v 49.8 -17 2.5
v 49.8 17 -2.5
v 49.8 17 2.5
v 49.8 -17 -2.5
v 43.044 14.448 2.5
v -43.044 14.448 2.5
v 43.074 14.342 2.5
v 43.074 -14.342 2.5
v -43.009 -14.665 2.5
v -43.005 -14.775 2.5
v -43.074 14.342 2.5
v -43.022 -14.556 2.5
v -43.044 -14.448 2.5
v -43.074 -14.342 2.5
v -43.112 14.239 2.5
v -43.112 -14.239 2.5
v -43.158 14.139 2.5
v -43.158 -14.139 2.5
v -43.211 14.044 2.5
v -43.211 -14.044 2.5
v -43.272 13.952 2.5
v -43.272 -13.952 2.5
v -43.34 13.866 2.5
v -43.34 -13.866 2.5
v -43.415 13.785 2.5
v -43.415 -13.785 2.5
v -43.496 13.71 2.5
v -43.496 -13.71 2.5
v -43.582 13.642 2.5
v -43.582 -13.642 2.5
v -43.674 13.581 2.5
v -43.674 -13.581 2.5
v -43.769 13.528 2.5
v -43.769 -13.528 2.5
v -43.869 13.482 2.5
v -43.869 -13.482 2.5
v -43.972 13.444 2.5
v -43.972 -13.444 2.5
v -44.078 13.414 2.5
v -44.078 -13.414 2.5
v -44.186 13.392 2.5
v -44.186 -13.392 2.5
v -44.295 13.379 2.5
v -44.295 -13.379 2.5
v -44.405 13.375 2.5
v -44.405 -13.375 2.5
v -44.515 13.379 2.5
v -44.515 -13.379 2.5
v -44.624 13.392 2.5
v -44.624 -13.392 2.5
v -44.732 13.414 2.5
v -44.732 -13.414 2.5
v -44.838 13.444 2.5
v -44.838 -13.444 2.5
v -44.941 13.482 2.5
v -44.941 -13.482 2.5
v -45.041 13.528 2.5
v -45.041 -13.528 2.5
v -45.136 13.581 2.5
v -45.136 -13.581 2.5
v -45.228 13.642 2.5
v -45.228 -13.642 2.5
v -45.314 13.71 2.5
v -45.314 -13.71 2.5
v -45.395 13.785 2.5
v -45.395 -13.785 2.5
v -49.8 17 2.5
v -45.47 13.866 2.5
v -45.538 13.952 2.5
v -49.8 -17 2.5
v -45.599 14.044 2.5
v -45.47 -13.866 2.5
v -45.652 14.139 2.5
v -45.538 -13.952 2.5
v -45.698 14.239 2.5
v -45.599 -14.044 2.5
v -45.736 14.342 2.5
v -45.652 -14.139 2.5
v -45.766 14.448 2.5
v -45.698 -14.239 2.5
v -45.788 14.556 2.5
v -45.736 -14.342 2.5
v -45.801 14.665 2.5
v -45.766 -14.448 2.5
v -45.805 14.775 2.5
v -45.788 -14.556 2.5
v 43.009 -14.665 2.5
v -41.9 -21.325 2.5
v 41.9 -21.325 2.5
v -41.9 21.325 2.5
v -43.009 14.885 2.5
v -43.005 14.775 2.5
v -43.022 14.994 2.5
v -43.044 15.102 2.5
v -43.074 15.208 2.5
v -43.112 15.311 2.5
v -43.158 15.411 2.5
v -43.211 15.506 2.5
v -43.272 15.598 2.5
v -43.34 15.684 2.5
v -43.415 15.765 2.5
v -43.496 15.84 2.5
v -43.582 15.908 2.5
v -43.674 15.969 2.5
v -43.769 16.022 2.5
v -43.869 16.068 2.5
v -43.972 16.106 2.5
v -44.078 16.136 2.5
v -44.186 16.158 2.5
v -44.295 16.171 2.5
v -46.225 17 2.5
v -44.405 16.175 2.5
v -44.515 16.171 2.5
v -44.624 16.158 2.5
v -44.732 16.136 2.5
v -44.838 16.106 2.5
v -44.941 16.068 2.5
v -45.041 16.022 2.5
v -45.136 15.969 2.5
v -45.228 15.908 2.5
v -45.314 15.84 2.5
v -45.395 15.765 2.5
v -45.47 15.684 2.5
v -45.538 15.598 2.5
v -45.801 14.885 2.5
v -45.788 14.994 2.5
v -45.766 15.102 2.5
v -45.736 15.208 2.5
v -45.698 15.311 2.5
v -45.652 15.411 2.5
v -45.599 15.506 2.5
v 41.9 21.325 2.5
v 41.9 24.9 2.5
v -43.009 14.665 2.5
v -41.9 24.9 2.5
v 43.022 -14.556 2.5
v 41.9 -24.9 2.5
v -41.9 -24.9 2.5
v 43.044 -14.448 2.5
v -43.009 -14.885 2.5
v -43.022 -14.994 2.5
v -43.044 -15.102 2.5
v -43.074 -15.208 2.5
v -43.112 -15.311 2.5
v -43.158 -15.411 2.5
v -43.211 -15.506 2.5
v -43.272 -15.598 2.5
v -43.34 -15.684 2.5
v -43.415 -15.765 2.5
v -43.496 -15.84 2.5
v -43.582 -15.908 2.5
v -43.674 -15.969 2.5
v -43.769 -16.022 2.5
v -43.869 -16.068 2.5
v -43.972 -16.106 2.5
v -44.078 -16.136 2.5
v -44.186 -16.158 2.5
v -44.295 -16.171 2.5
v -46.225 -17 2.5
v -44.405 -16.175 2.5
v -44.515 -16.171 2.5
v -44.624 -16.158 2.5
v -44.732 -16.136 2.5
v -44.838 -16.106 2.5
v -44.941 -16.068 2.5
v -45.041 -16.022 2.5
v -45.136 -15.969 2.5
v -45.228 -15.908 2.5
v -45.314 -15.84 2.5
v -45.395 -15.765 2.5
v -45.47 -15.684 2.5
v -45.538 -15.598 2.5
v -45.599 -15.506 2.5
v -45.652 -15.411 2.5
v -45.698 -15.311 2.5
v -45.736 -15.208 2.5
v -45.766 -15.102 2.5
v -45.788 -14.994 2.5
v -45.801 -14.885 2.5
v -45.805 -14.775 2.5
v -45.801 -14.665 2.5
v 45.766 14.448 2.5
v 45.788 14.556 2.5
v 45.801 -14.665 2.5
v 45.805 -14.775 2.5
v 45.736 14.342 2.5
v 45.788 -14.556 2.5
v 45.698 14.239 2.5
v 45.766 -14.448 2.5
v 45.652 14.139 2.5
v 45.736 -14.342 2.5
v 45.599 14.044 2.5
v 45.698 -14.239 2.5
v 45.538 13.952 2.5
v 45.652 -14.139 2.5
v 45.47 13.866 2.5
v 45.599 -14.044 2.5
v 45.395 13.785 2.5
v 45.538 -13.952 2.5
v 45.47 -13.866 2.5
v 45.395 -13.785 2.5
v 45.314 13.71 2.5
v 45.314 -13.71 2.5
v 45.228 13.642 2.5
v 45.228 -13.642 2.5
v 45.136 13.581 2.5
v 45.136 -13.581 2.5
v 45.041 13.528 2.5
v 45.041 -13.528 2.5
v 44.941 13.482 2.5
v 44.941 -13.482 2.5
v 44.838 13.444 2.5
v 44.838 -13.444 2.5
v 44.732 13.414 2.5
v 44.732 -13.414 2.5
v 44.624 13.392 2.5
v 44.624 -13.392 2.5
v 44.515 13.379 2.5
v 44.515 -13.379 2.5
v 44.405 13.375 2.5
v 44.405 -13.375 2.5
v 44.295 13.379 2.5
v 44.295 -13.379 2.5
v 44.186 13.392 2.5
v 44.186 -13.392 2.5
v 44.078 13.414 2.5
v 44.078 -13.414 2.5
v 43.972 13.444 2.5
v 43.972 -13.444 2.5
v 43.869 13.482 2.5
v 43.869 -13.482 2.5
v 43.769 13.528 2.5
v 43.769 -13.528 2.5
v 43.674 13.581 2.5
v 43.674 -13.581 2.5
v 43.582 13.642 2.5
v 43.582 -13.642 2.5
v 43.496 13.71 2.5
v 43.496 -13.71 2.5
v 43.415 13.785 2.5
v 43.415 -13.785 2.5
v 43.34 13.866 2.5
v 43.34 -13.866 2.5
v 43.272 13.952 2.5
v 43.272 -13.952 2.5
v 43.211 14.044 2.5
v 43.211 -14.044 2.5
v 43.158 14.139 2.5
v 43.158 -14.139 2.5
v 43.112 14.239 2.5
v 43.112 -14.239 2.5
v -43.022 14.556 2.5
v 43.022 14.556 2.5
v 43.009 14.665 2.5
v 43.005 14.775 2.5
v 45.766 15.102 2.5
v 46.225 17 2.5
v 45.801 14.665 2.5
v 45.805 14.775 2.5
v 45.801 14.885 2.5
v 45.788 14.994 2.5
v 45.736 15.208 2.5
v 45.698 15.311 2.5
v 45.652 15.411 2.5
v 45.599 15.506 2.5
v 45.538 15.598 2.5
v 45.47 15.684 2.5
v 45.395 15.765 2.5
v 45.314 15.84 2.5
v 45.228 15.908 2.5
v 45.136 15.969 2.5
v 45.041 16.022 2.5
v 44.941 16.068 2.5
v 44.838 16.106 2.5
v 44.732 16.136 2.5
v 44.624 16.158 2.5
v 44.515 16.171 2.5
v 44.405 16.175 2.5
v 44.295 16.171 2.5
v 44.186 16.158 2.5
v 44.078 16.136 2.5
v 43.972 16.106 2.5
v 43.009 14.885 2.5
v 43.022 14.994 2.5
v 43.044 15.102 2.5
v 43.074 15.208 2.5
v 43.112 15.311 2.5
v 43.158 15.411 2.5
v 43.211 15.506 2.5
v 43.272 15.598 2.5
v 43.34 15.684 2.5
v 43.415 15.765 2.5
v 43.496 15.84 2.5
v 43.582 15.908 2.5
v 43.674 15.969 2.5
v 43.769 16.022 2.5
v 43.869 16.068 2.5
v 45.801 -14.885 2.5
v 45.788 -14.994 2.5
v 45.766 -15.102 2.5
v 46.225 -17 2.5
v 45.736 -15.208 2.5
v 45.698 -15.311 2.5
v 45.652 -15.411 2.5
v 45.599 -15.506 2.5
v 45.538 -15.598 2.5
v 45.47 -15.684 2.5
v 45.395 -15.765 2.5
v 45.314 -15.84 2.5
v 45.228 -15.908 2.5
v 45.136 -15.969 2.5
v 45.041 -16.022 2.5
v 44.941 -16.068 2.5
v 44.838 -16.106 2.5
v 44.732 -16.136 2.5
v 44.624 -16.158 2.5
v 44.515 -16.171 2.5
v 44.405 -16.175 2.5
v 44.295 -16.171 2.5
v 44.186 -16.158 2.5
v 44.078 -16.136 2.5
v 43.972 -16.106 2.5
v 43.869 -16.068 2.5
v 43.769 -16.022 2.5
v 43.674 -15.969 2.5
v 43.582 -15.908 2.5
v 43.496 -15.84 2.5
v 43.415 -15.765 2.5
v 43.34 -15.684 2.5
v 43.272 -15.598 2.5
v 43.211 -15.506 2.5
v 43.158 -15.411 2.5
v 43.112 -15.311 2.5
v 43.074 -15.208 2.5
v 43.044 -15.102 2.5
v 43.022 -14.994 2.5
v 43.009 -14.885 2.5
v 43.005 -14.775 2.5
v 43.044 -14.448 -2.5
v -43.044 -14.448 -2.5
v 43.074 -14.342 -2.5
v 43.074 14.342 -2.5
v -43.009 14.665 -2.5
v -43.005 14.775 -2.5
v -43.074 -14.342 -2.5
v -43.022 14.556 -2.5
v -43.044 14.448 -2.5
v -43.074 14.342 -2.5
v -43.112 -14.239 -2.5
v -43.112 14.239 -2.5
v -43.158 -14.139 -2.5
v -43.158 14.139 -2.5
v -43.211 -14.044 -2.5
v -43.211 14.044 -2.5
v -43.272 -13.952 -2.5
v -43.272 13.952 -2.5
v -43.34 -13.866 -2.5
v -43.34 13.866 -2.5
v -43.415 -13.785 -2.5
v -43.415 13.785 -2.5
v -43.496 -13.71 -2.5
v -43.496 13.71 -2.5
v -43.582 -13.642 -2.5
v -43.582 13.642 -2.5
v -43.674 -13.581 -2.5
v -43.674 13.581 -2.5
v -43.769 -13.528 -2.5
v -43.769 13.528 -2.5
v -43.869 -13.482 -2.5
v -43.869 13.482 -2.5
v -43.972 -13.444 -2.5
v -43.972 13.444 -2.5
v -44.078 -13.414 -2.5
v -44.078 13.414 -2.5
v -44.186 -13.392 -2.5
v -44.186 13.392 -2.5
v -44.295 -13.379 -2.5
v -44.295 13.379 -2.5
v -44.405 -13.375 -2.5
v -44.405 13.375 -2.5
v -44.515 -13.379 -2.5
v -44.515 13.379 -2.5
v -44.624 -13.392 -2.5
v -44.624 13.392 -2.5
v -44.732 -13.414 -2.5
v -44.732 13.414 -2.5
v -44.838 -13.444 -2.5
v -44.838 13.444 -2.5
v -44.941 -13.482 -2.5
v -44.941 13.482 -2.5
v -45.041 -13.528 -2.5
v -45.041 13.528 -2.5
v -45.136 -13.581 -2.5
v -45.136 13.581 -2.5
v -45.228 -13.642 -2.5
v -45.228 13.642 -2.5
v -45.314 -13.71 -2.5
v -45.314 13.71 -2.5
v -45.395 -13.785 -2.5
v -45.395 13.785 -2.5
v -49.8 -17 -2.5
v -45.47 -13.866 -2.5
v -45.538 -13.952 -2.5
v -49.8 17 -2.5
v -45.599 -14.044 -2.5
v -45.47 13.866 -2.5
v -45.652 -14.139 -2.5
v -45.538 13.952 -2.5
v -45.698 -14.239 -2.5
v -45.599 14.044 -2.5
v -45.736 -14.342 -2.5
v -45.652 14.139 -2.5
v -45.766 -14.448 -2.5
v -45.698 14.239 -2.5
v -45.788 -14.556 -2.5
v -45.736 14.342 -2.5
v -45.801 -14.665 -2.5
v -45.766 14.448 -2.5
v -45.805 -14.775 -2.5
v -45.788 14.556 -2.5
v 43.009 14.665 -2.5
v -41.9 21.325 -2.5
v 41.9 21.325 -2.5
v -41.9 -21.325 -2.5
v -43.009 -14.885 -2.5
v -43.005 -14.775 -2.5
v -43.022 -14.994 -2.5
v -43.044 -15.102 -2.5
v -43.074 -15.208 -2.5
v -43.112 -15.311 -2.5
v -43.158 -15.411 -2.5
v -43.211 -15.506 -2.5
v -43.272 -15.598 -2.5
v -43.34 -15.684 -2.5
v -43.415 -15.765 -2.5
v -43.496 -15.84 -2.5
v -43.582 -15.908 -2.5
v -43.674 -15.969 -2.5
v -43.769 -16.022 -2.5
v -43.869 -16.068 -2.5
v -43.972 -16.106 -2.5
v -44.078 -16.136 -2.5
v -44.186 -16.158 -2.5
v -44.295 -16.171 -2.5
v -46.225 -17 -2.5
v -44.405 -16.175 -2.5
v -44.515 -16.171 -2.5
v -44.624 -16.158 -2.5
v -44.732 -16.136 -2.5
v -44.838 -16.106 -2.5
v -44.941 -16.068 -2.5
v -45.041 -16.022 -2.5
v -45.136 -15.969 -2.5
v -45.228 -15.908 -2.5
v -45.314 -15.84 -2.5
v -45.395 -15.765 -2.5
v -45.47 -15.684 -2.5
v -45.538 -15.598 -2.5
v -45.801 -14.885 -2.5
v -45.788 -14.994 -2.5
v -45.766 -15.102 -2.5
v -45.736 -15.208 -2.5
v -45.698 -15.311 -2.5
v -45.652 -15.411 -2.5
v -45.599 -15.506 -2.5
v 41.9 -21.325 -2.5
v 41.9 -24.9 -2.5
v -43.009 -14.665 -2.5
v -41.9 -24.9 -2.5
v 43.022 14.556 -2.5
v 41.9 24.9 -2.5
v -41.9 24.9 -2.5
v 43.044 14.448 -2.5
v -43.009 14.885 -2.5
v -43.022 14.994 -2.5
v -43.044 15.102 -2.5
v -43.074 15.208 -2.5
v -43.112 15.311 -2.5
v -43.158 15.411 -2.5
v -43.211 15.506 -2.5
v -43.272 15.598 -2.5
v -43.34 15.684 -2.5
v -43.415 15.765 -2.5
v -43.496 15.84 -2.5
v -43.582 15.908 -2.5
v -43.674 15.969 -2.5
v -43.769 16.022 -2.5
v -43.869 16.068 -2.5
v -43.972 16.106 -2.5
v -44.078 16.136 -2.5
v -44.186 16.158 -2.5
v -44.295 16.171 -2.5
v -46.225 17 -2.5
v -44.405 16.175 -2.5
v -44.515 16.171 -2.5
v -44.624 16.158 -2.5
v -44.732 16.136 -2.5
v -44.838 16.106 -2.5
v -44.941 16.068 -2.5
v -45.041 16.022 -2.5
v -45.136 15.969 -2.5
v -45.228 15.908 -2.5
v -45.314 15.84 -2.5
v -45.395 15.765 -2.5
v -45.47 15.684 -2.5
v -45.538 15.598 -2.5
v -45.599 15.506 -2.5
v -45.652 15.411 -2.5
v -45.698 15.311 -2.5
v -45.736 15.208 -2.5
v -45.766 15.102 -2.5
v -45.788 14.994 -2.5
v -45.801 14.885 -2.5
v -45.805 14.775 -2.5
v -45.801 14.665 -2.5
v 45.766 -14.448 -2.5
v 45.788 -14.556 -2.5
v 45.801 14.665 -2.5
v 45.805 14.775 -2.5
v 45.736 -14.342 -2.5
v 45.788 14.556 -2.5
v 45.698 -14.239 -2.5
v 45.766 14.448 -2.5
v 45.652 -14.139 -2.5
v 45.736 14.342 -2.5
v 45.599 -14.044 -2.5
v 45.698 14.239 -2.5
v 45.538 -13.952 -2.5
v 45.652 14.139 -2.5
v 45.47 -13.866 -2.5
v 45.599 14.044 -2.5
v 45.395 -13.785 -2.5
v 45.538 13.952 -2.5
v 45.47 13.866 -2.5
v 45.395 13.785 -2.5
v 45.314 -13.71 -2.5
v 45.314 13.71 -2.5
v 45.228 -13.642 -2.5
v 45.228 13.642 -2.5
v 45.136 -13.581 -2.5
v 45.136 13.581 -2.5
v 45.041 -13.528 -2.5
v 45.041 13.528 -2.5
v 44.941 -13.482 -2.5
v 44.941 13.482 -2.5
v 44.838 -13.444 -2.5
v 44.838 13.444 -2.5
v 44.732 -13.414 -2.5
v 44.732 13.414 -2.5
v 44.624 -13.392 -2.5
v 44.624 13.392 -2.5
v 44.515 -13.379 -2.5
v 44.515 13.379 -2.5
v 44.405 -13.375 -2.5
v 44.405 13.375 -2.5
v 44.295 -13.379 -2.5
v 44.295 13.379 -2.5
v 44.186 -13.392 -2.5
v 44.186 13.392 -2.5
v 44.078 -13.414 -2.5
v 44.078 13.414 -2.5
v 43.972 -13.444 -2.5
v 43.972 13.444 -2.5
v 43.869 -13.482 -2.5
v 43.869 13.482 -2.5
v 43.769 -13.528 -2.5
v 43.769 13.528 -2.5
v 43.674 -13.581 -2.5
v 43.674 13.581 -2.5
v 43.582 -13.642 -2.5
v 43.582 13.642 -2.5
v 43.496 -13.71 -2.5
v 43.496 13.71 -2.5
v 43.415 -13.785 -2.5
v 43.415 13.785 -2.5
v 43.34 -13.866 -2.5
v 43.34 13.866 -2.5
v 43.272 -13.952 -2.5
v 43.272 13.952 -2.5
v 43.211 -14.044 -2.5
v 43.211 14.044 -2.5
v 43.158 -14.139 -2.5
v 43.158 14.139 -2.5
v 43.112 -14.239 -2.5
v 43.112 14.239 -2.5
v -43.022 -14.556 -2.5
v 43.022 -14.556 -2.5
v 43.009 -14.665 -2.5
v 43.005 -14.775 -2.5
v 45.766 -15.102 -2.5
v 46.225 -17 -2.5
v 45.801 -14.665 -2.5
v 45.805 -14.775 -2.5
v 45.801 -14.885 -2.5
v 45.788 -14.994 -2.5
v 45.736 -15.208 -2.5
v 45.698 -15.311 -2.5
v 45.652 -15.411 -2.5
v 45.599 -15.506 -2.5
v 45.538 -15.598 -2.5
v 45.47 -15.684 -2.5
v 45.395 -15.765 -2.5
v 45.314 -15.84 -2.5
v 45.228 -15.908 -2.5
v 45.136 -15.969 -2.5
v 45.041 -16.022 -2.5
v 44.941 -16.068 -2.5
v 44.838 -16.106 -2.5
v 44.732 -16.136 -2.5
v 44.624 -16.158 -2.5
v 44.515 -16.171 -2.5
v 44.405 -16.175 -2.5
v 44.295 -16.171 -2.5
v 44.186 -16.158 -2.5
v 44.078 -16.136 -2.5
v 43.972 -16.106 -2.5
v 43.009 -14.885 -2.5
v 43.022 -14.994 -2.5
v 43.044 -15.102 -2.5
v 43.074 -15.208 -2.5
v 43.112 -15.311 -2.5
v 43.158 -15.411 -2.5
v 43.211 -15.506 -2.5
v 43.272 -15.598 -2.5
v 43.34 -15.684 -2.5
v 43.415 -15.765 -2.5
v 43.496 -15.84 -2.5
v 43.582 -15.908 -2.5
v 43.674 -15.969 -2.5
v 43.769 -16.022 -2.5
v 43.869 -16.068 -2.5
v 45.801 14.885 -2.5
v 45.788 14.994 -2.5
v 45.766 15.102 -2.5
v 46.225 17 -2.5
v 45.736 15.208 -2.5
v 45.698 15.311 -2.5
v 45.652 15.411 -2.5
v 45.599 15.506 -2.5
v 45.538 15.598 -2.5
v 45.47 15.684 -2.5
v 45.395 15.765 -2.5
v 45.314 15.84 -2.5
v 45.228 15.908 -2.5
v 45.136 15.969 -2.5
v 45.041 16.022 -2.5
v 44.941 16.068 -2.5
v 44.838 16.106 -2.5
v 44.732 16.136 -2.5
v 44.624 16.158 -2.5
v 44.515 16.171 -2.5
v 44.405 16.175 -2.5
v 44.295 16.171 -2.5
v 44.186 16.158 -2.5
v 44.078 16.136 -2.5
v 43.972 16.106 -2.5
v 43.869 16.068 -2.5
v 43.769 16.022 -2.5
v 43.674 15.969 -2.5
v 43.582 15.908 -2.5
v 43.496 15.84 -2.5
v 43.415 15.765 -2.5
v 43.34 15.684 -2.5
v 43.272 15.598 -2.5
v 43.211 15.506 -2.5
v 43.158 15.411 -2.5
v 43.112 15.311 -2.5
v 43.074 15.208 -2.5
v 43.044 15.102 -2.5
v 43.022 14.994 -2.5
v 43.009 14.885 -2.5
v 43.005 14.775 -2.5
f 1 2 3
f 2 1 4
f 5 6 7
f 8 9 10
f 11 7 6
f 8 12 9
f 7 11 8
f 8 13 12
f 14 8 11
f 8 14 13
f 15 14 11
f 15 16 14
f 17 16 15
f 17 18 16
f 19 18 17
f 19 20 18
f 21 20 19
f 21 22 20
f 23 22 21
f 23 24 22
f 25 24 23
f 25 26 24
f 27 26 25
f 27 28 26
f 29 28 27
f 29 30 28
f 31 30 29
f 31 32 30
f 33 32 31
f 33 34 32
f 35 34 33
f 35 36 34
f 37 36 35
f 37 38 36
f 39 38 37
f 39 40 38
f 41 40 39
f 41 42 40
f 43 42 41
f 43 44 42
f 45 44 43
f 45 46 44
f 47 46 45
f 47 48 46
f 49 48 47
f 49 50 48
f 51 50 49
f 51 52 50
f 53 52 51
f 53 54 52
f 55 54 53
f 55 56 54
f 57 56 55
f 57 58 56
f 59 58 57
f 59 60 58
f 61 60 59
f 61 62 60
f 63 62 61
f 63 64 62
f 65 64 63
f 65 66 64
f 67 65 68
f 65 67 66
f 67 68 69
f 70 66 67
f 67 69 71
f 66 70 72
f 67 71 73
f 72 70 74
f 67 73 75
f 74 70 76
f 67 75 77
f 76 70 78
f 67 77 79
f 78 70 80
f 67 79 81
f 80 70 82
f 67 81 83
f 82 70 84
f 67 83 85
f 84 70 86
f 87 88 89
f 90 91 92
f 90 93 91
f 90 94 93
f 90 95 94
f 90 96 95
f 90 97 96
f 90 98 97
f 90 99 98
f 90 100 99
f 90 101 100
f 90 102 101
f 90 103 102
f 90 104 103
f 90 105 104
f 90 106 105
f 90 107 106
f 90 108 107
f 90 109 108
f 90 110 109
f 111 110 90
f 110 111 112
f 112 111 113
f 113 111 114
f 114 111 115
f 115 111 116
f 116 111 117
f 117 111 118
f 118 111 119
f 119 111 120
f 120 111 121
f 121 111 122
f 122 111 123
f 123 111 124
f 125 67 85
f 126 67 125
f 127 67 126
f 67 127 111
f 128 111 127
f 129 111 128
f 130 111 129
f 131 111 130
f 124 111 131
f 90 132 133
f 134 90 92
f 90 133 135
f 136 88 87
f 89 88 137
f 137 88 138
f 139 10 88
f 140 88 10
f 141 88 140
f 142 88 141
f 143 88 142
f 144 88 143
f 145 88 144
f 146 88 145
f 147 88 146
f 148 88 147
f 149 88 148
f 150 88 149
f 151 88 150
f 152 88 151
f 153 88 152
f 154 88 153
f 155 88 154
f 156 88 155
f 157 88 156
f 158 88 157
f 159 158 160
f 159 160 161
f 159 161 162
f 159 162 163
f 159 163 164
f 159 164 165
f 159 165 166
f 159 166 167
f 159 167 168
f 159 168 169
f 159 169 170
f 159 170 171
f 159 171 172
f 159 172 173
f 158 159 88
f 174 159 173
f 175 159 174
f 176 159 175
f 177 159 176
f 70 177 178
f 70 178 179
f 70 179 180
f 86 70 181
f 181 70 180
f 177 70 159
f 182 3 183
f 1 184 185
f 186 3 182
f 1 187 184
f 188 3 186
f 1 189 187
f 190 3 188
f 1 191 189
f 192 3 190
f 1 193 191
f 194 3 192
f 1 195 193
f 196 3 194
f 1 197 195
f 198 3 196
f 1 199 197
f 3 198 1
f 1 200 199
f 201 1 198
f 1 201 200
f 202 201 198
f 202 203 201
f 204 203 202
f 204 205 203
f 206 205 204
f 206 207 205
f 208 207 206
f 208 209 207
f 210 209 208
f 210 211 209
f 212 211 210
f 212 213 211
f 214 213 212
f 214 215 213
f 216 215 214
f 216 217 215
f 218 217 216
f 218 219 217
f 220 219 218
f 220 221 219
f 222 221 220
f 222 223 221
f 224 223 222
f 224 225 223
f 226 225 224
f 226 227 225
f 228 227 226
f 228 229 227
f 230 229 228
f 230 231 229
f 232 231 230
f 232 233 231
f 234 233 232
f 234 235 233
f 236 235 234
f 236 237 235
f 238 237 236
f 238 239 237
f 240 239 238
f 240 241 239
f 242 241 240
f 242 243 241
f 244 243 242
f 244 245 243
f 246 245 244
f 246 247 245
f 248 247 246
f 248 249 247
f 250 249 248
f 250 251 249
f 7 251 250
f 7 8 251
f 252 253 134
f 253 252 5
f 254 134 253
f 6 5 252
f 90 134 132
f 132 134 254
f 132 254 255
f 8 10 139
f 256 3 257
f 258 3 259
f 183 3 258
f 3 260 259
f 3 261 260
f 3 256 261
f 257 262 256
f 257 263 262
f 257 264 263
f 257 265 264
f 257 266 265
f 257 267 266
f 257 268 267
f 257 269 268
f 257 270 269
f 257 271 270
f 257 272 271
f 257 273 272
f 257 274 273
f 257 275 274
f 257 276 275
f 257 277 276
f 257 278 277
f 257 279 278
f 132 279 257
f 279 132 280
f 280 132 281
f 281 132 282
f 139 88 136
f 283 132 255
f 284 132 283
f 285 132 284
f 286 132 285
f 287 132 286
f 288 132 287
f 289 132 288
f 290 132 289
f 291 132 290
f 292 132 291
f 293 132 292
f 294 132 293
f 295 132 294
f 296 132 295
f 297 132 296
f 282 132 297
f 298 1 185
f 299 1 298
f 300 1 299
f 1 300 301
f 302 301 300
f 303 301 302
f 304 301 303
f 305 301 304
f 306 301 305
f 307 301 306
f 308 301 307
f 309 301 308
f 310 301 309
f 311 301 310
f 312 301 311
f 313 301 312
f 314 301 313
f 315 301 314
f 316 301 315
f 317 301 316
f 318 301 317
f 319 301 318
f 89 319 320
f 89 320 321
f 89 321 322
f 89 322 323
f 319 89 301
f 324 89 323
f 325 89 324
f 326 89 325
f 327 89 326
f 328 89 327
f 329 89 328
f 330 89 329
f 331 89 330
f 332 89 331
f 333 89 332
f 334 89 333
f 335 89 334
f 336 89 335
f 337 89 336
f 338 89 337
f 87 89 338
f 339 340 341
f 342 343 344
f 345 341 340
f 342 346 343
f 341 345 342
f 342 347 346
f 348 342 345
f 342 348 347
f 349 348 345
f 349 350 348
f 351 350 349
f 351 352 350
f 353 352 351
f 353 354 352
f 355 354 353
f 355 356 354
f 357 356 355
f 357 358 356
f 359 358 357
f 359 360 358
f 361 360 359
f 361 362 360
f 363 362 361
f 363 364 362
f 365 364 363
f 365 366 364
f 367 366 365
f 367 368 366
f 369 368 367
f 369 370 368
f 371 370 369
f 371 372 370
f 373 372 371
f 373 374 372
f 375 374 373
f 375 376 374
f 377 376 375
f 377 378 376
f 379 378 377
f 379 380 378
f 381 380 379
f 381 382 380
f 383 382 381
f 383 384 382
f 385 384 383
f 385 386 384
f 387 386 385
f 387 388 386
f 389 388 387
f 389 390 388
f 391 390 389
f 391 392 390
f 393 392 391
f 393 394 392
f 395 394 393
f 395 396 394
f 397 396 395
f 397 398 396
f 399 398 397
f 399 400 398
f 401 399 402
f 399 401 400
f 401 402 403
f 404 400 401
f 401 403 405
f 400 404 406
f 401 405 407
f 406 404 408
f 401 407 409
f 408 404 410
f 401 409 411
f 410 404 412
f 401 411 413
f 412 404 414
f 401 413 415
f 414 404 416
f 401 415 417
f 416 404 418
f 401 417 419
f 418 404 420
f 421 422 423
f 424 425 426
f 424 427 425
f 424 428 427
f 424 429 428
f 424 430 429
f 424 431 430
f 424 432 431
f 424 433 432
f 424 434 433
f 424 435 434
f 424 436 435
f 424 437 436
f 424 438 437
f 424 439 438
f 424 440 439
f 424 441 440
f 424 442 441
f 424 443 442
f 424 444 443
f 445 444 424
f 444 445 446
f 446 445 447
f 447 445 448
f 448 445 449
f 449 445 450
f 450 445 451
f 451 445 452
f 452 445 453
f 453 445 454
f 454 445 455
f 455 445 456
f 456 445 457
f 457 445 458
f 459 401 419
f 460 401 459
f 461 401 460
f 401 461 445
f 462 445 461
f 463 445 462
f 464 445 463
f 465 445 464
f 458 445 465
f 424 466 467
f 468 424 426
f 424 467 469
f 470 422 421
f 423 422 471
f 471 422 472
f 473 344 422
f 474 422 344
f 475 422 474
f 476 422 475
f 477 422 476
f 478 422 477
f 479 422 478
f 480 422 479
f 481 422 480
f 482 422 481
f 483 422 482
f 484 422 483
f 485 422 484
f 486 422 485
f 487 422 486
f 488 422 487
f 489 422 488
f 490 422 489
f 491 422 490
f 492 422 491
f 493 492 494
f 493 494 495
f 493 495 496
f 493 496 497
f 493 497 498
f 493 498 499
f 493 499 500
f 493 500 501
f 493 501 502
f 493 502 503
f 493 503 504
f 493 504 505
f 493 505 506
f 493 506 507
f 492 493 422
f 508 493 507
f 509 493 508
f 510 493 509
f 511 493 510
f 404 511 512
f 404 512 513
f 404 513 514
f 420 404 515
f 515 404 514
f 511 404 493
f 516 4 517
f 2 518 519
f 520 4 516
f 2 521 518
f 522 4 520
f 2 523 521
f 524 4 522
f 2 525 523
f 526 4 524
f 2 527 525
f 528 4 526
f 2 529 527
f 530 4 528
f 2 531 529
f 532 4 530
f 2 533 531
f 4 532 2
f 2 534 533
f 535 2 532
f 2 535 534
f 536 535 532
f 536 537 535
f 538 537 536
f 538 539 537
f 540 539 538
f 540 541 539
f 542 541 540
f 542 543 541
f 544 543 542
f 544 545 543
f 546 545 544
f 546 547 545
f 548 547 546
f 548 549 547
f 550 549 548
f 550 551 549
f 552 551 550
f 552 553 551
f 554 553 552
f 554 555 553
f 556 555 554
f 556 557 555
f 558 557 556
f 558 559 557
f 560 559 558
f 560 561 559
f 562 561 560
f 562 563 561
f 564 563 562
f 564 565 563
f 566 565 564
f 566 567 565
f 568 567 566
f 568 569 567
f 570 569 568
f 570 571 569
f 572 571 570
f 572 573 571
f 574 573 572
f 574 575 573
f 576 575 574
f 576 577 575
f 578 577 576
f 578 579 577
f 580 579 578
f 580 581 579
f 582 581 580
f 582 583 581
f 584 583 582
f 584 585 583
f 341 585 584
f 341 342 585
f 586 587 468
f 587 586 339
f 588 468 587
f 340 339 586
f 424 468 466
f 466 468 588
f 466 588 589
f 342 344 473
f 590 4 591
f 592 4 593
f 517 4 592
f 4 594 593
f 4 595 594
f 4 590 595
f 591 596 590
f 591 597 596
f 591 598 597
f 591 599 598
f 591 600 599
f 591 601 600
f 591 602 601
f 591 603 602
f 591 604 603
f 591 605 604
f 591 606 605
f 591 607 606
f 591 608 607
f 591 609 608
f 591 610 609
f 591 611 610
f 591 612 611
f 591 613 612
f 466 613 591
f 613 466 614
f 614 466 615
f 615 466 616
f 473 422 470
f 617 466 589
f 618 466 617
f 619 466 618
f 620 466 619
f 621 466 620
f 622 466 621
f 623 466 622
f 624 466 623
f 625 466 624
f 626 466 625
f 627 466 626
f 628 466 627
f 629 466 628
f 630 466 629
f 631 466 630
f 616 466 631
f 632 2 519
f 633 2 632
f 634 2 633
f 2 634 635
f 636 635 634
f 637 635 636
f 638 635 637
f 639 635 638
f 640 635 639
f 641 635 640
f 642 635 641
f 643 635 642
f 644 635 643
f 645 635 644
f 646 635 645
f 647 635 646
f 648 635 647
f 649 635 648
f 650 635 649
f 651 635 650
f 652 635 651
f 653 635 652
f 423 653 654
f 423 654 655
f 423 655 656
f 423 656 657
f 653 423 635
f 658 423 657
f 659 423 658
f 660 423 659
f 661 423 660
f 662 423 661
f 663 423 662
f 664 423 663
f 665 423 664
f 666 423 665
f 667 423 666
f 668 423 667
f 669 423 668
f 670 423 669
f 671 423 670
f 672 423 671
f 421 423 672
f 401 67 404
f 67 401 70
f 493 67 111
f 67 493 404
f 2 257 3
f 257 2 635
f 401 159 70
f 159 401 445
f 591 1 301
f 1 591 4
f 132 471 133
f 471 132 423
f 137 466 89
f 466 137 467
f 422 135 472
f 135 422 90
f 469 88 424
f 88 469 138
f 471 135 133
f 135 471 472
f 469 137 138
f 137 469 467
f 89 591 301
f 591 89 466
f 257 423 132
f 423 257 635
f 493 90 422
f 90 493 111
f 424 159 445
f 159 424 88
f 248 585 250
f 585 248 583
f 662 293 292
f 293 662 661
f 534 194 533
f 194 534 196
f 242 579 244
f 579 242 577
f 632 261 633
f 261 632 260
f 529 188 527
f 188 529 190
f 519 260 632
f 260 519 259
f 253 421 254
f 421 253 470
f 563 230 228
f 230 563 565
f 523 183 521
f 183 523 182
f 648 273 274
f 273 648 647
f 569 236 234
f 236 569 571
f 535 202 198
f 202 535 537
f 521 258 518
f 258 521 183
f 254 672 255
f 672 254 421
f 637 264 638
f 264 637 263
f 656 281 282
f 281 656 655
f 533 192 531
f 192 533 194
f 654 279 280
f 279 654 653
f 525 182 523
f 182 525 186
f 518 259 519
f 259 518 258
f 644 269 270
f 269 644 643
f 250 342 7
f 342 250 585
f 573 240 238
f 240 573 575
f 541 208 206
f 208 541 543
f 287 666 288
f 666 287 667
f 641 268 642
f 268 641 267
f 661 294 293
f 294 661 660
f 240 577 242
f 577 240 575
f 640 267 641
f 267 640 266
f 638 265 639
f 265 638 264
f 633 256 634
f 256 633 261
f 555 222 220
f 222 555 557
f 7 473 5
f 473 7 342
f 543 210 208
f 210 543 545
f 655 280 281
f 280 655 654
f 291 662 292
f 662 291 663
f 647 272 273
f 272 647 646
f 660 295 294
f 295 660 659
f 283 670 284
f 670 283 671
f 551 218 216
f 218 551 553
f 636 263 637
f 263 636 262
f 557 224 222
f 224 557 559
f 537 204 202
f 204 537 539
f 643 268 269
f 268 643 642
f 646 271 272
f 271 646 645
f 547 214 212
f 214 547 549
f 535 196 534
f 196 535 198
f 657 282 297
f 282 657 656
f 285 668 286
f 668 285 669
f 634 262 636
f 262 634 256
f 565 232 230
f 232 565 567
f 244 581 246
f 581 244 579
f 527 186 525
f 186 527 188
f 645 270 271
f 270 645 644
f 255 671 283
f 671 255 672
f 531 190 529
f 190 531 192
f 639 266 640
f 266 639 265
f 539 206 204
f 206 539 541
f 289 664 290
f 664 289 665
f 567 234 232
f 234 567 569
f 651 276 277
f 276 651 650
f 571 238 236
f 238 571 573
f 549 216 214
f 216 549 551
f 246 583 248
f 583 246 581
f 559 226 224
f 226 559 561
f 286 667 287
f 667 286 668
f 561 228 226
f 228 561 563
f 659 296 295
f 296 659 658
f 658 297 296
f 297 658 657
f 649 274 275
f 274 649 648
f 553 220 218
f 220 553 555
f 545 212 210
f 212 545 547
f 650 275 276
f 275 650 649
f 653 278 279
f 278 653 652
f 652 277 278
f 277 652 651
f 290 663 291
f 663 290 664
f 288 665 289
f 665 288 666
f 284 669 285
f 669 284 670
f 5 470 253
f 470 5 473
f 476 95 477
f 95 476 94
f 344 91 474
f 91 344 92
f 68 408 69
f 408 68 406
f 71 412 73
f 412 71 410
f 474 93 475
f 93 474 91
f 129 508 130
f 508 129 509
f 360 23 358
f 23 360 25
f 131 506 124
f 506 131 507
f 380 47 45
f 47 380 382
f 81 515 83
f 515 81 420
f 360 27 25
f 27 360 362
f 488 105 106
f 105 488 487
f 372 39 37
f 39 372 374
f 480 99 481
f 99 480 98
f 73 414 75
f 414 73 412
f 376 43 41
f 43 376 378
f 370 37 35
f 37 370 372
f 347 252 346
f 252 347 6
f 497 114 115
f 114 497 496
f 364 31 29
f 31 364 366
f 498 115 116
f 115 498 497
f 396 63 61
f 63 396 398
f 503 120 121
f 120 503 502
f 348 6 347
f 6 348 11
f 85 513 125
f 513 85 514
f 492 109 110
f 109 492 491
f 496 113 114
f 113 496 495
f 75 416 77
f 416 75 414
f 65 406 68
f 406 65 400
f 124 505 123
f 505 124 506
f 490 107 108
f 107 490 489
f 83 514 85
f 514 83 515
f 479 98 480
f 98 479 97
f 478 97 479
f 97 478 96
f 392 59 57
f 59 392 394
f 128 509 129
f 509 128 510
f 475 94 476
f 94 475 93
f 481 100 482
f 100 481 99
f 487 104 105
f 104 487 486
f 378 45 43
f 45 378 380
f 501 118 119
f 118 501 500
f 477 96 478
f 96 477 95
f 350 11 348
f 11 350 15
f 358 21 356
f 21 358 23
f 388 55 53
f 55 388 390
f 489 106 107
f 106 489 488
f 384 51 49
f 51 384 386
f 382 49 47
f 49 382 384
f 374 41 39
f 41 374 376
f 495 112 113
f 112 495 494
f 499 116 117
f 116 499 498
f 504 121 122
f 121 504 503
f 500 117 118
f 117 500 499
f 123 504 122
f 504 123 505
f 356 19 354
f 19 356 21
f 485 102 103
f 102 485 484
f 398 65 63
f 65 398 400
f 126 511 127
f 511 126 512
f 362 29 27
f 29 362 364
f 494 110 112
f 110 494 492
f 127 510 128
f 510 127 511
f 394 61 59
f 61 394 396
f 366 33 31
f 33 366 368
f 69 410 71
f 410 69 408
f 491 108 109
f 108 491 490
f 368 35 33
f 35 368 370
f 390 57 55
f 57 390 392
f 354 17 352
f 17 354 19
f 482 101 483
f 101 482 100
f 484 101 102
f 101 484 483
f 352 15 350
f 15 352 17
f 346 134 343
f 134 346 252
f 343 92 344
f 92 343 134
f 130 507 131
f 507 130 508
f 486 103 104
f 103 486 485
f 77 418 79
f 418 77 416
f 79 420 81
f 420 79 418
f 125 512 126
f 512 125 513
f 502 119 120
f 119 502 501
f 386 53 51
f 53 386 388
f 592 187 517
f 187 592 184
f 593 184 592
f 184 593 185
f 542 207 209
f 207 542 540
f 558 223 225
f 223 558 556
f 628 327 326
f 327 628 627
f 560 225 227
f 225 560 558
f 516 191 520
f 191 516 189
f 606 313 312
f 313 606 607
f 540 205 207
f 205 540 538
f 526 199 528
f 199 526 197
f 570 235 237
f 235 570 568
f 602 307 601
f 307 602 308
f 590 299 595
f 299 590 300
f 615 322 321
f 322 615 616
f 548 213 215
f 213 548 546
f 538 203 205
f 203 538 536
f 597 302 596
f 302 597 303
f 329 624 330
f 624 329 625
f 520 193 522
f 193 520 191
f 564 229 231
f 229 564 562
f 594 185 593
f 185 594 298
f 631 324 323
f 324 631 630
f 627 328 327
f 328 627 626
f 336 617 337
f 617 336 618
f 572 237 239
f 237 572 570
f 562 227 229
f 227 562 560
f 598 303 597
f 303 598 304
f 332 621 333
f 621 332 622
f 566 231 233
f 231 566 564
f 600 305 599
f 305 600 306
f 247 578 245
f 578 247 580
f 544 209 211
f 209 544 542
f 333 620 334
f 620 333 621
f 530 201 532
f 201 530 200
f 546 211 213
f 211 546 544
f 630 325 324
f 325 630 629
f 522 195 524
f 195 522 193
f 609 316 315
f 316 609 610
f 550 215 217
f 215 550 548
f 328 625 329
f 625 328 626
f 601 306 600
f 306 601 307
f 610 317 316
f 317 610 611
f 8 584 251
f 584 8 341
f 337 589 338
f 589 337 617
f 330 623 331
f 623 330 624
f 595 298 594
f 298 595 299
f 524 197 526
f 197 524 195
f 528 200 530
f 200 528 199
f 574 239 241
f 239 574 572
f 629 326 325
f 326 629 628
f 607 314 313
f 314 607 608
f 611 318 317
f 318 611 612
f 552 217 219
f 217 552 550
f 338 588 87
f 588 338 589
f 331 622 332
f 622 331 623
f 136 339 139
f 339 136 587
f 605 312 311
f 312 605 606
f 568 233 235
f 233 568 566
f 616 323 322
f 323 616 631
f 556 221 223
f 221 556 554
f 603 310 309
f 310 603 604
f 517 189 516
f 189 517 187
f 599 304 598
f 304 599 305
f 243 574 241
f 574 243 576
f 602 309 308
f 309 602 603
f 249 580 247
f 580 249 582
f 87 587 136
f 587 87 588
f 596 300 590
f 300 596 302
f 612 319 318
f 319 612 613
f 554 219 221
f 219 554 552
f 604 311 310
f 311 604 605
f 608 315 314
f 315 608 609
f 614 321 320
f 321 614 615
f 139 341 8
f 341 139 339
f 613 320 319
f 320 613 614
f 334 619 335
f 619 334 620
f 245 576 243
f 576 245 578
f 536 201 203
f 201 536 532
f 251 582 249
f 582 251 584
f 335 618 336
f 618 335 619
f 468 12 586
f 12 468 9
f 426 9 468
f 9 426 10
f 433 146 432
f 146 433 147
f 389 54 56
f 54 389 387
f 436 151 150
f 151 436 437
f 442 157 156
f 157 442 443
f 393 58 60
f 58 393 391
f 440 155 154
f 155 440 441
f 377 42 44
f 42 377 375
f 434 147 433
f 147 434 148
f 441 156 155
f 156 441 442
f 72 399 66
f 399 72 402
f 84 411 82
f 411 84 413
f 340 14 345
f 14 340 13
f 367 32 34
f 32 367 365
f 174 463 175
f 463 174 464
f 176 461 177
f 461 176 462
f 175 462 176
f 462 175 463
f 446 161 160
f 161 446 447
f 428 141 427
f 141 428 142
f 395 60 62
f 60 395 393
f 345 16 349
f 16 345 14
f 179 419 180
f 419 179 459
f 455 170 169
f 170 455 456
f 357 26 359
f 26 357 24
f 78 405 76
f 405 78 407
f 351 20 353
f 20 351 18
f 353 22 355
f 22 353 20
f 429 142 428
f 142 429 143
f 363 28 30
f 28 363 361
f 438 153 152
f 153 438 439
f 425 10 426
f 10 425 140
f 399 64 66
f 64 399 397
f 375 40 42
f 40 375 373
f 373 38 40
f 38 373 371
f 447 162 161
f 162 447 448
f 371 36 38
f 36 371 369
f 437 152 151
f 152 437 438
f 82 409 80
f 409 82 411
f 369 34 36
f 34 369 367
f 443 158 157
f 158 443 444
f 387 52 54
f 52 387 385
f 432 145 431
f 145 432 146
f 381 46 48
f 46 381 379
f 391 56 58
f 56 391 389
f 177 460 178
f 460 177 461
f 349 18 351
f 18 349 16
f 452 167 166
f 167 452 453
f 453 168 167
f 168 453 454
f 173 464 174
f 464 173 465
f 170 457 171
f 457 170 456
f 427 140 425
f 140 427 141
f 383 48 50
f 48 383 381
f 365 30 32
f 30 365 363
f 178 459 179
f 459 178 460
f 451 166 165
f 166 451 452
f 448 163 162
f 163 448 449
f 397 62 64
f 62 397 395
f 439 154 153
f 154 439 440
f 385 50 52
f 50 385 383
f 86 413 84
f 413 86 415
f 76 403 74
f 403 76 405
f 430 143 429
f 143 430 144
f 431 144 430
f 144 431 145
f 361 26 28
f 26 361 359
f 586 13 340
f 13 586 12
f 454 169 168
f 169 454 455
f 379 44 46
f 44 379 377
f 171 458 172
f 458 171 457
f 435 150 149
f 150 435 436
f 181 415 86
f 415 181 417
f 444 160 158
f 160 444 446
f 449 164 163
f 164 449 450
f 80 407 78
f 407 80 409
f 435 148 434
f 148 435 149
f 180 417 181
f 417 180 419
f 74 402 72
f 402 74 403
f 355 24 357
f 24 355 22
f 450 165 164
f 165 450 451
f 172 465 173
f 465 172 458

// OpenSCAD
//Cube insert: Perpendicular 


/* [Hiden] */
$fn = 80;
eps = .002;
a = 49.8;
b = 33.6;
c = 6.28;
d = 53.8;
h = 5;
IM_offset = 0.2;

scr_d = 2.8; // Screw hole diameter (M3)

mount_x = 92.17 - 3.36;
mount_y = 35.85 - 6.3;

module DoubleInsert() {
    union() {   //basic insert design
            cube([2*a,b+2*IM_offset,h], center=true);
            cube([2*b+2*IM_offset+(a-b),a,h], center=true);
        
            translate([(2*a)/4,0,0])
            rotate(a=[0,0,45])
                cube([c,d+2*IM_offset,h], center=true);
        
            translate([(2*a)/4,0,0])
            rotate(a=[0,0,-45])
                cube([c,d+2*IM_offset,h], center=true);
        
            translate([-(2*a)/4,0,0])
            rotate(a=[0,0,45])
                cube([c,d+2*IM_offset,h], center=true);
        
            translate([-(2*a)/4,0,0])
            rotate(a=[0,0,-45])
                cube([c,d+2*IM_offset,h], center=true);
        }
}

module LaserInsert() {
    difference() {
        DoubleInsert();
        
        union() {
            translate([mount_x/2,mount_y/2,0])
              cylinder(h = h*2, d = scr_d, center=true);
            
            translate([-mount_x/2,mount_y/2,0])
              cylinder(h = h*2, d = scr_d, center=true);
            
            translate([mount_x/2,-mount_y/2,0])
              cylinder(h = h*2, d = scr_d, center=true);
            
            translate([-mount_x/2,-mount_y/2,0])
              cylinder(h = h*2, d = scr_d, center=true);
        }
    }
}


LaserInsert();
